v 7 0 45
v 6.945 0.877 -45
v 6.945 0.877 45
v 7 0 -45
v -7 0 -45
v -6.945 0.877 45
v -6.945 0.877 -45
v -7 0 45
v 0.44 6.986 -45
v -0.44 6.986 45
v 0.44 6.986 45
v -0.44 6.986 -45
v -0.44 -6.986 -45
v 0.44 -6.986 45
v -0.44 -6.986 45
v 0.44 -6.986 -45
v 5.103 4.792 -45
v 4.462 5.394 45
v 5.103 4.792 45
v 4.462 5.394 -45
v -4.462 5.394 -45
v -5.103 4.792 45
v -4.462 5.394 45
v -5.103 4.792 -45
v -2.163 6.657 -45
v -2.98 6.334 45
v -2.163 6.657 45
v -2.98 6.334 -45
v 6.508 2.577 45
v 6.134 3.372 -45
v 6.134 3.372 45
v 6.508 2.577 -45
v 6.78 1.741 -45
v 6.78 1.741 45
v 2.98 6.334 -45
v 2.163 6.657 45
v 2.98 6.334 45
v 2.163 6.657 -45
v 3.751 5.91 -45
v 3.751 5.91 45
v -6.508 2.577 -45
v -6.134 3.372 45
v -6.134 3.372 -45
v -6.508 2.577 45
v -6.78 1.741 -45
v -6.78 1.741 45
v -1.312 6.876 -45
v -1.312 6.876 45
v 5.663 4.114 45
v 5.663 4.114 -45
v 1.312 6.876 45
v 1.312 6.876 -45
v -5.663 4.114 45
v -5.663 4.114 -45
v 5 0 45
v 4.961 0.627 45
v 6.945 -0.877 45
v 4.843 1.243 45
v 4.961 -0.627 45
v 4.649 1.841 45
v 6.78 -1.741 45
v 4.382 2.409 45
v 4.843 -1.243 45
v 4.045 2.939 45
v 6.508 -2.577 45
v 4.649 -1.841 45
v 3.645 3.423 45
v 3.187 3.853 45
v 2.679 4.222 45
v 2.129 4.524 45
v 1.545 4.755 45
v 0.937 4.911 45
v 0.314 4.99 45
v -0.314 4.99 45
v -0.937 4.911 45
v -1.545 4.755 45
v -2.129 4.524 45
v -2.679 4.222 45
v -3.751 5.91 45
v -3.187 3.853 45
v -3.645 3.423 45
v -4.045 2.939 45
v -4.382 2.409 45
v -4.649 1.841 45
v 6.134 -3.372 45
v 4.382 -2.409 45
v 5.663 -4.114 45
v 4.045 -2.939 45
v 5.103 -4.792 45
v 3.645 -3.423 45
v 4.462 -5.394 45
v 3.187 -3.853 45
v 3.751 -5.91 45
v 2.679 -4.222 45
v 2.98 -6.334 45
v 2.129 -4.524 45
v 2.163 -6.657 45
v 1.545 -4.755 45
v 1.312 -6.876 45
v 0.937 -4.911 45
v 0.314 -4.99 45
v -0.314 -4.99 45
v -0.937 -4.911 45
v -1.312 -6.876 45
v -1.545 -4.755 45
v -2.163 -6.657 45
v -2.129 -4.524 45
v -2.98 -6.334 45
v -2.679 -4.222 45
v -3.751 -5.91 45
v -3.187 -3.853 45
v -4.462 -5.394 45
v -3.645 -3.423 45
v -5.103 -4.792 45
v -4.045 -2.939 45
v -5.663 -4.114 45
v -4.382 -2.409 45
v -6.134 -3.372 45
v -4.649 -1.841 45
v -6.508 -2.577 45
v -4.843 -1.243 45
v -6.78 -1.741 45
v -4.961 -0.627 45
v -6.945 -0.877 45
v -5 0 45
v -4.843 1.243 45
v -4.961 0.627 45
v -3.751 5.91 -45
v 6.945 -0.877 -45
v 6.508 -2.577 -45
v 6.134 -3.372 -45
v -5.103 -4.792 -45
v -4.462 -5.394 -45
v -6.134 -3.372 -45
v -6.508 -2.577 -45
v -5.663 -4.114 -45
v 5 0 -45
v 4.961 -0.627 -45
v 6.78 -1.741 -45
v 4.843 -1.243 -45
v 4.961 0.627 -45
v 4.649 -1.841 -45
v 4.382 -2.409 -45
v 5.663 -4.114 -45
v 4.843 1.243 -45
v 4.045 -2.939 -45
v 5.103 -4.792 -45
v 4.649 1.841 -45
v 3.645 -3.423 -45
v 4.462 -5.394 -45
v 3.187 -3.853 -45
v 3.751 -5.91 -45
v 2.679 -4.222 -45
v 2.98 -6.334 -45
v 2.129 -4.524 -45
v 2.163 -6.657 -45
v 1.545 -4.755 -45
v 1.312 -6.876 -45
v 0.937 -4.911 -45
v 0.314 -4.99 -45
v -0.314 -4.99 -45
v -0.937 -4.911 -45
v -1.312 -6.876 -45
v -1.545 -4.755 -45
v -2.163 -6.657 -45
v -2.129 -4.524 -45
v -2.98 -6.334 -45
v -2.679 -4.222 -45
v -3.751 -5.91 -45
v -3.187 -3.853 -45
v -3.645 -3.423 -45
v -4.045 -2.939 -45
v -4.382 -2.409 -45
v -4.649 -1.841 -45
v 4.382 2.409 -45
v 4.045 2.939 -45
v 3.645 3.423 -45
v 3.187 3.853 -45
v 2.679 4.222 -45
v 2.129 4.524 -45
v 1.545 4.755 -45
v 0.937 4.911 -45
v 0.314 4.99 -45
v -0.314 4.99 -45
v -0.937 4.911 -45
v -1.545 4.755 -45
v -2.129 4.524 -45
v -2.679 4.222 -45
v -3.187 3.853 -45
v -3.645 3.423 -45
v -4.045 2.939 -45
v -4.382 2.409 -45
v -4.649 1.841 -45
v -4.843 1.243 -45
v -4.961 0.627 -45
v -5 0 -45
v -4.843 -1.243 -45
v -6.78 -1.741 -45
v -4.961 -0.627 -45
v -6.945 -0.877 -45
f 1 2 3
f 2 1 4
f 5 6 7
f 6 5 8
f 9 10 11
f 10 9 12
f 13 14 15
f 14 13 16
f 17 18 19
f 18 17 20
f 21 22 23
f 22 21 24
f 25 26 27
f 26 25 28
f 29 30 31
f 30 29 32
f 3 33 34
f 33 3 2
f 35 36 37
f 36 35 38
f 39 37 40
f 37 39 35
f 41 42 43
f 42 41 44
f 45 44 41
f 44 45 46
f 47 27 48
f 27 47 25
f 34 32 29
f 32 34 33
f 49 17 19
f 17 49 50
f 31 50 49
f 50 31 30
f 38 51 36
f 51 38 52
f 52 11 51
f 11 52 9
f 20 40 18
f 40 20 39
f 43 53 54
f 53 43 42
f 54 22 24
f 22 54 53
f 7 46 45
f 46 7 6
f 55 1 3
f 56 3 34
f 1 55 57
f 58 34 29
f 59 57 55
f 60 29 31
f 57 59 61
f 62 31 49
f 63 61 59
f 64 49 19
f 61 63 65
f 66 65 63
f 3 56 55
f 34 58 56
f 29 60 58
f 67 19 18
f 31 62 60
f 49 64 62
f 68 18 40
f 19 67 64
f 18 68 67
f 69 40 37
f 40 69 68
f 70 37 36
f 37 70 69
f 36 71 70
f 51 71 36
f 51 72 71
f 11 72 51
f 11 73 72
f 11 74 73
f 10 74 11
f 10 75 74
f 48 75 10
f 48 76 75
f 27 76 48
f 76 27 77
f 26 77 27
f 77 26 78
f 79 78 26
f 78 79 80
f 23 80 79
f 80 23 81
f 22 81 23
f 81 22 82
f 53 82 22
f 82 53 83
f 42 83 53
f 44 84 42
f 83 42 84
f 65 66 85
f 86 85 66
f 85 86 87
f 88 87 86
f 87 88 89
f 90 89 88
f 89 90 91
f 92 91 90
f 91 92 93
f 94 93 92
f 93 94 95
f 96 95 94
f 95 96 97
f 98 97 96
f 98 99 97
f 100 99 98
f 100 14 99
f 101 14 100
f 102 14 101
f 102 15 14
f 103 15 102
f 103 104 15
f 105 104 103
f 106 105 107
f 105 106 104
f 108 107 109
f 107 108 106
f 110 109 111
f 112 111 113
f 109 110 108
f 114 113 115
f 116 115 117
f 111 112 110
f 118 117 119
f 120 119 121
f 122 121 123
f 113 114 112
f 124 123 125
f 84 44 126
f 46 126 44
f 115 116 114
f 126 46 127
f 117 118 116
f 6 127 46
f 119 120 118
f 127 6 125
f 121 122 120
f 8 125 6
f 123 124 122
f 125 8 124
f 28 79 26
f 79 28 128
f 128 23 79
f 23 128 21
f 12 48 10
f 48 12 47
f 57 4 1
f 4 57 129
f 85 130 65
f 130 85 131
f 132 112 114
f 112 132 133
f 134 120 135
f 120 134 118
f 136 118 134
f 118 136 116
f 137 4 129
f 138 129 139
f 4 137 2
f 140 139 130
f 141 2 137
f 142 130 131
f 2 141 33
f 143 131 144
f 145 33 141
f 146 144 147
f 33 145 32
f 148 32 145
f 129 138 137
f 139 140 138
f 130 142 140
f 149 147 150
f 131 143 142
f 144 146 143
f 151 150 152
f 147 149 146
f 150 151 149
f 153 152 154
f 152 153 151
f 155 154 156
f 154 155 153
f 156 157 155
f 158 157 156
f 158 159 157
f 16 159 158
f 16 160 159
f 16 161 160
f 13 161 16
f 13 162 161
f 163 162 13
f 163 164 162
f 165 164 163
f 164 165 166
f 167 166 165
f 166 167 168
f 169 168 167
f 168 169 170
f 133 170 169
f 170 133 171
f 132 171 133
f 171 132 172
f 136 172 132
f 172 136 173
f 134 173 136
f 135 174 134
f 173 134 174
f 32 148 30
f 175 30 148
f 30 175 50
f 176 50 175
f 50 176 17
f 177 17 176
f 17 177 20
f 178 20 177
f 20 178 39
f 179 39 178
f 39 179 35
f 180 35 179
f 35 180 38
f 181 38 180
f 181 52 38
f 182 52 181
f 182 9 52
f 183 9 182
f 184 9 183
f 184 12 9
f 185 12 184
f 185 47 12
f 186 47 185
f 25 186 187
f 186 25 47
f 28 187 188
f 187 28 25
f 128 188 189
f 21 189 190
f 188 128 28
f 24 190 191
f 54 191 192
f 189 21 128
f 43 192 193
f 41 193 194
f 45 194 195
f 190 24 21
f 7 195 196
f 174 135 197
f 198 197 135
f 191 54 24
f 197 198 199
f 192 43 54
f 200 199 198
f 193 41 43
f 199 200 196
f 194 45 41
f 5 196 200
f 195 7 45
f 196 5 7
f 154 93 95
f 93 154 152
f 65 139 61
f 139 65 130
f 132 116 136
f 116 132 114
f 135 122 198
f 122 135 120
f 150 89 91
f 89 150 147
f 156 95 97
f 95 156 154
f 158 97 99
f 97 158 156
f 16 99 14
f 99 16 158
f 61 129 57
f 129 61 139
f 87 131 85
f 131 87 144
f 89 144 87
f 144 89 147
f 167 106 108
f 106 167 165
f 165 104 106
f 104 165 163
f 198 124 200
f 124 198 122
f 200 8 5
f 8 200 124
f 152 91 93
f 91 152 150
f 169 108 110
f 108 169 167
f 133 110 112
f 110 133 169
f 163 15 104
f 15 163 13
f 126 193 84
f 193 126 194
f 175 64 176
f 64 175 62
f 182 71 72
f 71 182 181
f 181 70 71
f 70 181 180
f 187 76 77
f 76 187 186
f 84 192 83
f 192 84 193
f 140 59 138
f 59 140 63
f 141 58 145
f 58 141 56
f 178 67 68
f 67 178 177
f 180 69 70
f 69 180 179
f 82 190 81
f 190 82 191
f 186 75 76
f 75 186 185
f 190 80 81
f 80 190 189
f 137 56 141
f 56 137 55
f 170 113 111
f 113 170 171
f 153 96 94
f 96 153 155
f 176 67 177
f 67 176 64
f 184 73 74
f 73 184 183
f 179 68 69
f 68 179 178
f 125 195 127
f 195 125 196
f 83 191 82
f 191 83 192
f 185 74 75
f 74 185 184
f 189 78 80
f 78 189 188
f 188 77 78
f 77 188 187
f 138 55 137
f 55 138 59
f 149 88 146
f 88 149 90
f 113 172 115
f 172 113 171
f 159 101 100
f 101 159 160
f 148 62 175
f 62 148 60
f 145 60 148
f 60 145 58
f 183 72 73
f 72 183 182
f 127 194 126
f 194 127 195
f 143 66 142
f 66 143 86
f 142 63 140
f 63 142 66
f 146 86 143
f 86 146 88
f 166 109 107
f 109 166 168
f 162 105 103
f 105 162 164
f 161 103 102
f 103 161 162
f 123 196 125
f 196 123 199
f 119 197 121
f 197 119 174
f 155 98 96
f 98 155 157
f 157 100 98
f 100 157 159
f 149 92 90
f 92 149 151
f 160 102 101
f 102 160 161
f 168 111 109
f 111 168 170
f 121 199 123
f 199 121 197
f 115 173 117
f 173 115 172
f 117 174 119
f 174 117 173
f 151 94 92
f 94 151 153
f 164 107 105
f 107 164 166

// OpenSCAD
$fn = 50;


difference() {
	union() {
		translate(v = [0, 0, -45.0000000000]) {
			cylinder(h = 90, r = 7.0000000000);
		}
	}
	union() {
		translate(v = [0, 0, -100.0000000000]) {
			cylinder(h = 200, r = 5);
		}
	}
}
